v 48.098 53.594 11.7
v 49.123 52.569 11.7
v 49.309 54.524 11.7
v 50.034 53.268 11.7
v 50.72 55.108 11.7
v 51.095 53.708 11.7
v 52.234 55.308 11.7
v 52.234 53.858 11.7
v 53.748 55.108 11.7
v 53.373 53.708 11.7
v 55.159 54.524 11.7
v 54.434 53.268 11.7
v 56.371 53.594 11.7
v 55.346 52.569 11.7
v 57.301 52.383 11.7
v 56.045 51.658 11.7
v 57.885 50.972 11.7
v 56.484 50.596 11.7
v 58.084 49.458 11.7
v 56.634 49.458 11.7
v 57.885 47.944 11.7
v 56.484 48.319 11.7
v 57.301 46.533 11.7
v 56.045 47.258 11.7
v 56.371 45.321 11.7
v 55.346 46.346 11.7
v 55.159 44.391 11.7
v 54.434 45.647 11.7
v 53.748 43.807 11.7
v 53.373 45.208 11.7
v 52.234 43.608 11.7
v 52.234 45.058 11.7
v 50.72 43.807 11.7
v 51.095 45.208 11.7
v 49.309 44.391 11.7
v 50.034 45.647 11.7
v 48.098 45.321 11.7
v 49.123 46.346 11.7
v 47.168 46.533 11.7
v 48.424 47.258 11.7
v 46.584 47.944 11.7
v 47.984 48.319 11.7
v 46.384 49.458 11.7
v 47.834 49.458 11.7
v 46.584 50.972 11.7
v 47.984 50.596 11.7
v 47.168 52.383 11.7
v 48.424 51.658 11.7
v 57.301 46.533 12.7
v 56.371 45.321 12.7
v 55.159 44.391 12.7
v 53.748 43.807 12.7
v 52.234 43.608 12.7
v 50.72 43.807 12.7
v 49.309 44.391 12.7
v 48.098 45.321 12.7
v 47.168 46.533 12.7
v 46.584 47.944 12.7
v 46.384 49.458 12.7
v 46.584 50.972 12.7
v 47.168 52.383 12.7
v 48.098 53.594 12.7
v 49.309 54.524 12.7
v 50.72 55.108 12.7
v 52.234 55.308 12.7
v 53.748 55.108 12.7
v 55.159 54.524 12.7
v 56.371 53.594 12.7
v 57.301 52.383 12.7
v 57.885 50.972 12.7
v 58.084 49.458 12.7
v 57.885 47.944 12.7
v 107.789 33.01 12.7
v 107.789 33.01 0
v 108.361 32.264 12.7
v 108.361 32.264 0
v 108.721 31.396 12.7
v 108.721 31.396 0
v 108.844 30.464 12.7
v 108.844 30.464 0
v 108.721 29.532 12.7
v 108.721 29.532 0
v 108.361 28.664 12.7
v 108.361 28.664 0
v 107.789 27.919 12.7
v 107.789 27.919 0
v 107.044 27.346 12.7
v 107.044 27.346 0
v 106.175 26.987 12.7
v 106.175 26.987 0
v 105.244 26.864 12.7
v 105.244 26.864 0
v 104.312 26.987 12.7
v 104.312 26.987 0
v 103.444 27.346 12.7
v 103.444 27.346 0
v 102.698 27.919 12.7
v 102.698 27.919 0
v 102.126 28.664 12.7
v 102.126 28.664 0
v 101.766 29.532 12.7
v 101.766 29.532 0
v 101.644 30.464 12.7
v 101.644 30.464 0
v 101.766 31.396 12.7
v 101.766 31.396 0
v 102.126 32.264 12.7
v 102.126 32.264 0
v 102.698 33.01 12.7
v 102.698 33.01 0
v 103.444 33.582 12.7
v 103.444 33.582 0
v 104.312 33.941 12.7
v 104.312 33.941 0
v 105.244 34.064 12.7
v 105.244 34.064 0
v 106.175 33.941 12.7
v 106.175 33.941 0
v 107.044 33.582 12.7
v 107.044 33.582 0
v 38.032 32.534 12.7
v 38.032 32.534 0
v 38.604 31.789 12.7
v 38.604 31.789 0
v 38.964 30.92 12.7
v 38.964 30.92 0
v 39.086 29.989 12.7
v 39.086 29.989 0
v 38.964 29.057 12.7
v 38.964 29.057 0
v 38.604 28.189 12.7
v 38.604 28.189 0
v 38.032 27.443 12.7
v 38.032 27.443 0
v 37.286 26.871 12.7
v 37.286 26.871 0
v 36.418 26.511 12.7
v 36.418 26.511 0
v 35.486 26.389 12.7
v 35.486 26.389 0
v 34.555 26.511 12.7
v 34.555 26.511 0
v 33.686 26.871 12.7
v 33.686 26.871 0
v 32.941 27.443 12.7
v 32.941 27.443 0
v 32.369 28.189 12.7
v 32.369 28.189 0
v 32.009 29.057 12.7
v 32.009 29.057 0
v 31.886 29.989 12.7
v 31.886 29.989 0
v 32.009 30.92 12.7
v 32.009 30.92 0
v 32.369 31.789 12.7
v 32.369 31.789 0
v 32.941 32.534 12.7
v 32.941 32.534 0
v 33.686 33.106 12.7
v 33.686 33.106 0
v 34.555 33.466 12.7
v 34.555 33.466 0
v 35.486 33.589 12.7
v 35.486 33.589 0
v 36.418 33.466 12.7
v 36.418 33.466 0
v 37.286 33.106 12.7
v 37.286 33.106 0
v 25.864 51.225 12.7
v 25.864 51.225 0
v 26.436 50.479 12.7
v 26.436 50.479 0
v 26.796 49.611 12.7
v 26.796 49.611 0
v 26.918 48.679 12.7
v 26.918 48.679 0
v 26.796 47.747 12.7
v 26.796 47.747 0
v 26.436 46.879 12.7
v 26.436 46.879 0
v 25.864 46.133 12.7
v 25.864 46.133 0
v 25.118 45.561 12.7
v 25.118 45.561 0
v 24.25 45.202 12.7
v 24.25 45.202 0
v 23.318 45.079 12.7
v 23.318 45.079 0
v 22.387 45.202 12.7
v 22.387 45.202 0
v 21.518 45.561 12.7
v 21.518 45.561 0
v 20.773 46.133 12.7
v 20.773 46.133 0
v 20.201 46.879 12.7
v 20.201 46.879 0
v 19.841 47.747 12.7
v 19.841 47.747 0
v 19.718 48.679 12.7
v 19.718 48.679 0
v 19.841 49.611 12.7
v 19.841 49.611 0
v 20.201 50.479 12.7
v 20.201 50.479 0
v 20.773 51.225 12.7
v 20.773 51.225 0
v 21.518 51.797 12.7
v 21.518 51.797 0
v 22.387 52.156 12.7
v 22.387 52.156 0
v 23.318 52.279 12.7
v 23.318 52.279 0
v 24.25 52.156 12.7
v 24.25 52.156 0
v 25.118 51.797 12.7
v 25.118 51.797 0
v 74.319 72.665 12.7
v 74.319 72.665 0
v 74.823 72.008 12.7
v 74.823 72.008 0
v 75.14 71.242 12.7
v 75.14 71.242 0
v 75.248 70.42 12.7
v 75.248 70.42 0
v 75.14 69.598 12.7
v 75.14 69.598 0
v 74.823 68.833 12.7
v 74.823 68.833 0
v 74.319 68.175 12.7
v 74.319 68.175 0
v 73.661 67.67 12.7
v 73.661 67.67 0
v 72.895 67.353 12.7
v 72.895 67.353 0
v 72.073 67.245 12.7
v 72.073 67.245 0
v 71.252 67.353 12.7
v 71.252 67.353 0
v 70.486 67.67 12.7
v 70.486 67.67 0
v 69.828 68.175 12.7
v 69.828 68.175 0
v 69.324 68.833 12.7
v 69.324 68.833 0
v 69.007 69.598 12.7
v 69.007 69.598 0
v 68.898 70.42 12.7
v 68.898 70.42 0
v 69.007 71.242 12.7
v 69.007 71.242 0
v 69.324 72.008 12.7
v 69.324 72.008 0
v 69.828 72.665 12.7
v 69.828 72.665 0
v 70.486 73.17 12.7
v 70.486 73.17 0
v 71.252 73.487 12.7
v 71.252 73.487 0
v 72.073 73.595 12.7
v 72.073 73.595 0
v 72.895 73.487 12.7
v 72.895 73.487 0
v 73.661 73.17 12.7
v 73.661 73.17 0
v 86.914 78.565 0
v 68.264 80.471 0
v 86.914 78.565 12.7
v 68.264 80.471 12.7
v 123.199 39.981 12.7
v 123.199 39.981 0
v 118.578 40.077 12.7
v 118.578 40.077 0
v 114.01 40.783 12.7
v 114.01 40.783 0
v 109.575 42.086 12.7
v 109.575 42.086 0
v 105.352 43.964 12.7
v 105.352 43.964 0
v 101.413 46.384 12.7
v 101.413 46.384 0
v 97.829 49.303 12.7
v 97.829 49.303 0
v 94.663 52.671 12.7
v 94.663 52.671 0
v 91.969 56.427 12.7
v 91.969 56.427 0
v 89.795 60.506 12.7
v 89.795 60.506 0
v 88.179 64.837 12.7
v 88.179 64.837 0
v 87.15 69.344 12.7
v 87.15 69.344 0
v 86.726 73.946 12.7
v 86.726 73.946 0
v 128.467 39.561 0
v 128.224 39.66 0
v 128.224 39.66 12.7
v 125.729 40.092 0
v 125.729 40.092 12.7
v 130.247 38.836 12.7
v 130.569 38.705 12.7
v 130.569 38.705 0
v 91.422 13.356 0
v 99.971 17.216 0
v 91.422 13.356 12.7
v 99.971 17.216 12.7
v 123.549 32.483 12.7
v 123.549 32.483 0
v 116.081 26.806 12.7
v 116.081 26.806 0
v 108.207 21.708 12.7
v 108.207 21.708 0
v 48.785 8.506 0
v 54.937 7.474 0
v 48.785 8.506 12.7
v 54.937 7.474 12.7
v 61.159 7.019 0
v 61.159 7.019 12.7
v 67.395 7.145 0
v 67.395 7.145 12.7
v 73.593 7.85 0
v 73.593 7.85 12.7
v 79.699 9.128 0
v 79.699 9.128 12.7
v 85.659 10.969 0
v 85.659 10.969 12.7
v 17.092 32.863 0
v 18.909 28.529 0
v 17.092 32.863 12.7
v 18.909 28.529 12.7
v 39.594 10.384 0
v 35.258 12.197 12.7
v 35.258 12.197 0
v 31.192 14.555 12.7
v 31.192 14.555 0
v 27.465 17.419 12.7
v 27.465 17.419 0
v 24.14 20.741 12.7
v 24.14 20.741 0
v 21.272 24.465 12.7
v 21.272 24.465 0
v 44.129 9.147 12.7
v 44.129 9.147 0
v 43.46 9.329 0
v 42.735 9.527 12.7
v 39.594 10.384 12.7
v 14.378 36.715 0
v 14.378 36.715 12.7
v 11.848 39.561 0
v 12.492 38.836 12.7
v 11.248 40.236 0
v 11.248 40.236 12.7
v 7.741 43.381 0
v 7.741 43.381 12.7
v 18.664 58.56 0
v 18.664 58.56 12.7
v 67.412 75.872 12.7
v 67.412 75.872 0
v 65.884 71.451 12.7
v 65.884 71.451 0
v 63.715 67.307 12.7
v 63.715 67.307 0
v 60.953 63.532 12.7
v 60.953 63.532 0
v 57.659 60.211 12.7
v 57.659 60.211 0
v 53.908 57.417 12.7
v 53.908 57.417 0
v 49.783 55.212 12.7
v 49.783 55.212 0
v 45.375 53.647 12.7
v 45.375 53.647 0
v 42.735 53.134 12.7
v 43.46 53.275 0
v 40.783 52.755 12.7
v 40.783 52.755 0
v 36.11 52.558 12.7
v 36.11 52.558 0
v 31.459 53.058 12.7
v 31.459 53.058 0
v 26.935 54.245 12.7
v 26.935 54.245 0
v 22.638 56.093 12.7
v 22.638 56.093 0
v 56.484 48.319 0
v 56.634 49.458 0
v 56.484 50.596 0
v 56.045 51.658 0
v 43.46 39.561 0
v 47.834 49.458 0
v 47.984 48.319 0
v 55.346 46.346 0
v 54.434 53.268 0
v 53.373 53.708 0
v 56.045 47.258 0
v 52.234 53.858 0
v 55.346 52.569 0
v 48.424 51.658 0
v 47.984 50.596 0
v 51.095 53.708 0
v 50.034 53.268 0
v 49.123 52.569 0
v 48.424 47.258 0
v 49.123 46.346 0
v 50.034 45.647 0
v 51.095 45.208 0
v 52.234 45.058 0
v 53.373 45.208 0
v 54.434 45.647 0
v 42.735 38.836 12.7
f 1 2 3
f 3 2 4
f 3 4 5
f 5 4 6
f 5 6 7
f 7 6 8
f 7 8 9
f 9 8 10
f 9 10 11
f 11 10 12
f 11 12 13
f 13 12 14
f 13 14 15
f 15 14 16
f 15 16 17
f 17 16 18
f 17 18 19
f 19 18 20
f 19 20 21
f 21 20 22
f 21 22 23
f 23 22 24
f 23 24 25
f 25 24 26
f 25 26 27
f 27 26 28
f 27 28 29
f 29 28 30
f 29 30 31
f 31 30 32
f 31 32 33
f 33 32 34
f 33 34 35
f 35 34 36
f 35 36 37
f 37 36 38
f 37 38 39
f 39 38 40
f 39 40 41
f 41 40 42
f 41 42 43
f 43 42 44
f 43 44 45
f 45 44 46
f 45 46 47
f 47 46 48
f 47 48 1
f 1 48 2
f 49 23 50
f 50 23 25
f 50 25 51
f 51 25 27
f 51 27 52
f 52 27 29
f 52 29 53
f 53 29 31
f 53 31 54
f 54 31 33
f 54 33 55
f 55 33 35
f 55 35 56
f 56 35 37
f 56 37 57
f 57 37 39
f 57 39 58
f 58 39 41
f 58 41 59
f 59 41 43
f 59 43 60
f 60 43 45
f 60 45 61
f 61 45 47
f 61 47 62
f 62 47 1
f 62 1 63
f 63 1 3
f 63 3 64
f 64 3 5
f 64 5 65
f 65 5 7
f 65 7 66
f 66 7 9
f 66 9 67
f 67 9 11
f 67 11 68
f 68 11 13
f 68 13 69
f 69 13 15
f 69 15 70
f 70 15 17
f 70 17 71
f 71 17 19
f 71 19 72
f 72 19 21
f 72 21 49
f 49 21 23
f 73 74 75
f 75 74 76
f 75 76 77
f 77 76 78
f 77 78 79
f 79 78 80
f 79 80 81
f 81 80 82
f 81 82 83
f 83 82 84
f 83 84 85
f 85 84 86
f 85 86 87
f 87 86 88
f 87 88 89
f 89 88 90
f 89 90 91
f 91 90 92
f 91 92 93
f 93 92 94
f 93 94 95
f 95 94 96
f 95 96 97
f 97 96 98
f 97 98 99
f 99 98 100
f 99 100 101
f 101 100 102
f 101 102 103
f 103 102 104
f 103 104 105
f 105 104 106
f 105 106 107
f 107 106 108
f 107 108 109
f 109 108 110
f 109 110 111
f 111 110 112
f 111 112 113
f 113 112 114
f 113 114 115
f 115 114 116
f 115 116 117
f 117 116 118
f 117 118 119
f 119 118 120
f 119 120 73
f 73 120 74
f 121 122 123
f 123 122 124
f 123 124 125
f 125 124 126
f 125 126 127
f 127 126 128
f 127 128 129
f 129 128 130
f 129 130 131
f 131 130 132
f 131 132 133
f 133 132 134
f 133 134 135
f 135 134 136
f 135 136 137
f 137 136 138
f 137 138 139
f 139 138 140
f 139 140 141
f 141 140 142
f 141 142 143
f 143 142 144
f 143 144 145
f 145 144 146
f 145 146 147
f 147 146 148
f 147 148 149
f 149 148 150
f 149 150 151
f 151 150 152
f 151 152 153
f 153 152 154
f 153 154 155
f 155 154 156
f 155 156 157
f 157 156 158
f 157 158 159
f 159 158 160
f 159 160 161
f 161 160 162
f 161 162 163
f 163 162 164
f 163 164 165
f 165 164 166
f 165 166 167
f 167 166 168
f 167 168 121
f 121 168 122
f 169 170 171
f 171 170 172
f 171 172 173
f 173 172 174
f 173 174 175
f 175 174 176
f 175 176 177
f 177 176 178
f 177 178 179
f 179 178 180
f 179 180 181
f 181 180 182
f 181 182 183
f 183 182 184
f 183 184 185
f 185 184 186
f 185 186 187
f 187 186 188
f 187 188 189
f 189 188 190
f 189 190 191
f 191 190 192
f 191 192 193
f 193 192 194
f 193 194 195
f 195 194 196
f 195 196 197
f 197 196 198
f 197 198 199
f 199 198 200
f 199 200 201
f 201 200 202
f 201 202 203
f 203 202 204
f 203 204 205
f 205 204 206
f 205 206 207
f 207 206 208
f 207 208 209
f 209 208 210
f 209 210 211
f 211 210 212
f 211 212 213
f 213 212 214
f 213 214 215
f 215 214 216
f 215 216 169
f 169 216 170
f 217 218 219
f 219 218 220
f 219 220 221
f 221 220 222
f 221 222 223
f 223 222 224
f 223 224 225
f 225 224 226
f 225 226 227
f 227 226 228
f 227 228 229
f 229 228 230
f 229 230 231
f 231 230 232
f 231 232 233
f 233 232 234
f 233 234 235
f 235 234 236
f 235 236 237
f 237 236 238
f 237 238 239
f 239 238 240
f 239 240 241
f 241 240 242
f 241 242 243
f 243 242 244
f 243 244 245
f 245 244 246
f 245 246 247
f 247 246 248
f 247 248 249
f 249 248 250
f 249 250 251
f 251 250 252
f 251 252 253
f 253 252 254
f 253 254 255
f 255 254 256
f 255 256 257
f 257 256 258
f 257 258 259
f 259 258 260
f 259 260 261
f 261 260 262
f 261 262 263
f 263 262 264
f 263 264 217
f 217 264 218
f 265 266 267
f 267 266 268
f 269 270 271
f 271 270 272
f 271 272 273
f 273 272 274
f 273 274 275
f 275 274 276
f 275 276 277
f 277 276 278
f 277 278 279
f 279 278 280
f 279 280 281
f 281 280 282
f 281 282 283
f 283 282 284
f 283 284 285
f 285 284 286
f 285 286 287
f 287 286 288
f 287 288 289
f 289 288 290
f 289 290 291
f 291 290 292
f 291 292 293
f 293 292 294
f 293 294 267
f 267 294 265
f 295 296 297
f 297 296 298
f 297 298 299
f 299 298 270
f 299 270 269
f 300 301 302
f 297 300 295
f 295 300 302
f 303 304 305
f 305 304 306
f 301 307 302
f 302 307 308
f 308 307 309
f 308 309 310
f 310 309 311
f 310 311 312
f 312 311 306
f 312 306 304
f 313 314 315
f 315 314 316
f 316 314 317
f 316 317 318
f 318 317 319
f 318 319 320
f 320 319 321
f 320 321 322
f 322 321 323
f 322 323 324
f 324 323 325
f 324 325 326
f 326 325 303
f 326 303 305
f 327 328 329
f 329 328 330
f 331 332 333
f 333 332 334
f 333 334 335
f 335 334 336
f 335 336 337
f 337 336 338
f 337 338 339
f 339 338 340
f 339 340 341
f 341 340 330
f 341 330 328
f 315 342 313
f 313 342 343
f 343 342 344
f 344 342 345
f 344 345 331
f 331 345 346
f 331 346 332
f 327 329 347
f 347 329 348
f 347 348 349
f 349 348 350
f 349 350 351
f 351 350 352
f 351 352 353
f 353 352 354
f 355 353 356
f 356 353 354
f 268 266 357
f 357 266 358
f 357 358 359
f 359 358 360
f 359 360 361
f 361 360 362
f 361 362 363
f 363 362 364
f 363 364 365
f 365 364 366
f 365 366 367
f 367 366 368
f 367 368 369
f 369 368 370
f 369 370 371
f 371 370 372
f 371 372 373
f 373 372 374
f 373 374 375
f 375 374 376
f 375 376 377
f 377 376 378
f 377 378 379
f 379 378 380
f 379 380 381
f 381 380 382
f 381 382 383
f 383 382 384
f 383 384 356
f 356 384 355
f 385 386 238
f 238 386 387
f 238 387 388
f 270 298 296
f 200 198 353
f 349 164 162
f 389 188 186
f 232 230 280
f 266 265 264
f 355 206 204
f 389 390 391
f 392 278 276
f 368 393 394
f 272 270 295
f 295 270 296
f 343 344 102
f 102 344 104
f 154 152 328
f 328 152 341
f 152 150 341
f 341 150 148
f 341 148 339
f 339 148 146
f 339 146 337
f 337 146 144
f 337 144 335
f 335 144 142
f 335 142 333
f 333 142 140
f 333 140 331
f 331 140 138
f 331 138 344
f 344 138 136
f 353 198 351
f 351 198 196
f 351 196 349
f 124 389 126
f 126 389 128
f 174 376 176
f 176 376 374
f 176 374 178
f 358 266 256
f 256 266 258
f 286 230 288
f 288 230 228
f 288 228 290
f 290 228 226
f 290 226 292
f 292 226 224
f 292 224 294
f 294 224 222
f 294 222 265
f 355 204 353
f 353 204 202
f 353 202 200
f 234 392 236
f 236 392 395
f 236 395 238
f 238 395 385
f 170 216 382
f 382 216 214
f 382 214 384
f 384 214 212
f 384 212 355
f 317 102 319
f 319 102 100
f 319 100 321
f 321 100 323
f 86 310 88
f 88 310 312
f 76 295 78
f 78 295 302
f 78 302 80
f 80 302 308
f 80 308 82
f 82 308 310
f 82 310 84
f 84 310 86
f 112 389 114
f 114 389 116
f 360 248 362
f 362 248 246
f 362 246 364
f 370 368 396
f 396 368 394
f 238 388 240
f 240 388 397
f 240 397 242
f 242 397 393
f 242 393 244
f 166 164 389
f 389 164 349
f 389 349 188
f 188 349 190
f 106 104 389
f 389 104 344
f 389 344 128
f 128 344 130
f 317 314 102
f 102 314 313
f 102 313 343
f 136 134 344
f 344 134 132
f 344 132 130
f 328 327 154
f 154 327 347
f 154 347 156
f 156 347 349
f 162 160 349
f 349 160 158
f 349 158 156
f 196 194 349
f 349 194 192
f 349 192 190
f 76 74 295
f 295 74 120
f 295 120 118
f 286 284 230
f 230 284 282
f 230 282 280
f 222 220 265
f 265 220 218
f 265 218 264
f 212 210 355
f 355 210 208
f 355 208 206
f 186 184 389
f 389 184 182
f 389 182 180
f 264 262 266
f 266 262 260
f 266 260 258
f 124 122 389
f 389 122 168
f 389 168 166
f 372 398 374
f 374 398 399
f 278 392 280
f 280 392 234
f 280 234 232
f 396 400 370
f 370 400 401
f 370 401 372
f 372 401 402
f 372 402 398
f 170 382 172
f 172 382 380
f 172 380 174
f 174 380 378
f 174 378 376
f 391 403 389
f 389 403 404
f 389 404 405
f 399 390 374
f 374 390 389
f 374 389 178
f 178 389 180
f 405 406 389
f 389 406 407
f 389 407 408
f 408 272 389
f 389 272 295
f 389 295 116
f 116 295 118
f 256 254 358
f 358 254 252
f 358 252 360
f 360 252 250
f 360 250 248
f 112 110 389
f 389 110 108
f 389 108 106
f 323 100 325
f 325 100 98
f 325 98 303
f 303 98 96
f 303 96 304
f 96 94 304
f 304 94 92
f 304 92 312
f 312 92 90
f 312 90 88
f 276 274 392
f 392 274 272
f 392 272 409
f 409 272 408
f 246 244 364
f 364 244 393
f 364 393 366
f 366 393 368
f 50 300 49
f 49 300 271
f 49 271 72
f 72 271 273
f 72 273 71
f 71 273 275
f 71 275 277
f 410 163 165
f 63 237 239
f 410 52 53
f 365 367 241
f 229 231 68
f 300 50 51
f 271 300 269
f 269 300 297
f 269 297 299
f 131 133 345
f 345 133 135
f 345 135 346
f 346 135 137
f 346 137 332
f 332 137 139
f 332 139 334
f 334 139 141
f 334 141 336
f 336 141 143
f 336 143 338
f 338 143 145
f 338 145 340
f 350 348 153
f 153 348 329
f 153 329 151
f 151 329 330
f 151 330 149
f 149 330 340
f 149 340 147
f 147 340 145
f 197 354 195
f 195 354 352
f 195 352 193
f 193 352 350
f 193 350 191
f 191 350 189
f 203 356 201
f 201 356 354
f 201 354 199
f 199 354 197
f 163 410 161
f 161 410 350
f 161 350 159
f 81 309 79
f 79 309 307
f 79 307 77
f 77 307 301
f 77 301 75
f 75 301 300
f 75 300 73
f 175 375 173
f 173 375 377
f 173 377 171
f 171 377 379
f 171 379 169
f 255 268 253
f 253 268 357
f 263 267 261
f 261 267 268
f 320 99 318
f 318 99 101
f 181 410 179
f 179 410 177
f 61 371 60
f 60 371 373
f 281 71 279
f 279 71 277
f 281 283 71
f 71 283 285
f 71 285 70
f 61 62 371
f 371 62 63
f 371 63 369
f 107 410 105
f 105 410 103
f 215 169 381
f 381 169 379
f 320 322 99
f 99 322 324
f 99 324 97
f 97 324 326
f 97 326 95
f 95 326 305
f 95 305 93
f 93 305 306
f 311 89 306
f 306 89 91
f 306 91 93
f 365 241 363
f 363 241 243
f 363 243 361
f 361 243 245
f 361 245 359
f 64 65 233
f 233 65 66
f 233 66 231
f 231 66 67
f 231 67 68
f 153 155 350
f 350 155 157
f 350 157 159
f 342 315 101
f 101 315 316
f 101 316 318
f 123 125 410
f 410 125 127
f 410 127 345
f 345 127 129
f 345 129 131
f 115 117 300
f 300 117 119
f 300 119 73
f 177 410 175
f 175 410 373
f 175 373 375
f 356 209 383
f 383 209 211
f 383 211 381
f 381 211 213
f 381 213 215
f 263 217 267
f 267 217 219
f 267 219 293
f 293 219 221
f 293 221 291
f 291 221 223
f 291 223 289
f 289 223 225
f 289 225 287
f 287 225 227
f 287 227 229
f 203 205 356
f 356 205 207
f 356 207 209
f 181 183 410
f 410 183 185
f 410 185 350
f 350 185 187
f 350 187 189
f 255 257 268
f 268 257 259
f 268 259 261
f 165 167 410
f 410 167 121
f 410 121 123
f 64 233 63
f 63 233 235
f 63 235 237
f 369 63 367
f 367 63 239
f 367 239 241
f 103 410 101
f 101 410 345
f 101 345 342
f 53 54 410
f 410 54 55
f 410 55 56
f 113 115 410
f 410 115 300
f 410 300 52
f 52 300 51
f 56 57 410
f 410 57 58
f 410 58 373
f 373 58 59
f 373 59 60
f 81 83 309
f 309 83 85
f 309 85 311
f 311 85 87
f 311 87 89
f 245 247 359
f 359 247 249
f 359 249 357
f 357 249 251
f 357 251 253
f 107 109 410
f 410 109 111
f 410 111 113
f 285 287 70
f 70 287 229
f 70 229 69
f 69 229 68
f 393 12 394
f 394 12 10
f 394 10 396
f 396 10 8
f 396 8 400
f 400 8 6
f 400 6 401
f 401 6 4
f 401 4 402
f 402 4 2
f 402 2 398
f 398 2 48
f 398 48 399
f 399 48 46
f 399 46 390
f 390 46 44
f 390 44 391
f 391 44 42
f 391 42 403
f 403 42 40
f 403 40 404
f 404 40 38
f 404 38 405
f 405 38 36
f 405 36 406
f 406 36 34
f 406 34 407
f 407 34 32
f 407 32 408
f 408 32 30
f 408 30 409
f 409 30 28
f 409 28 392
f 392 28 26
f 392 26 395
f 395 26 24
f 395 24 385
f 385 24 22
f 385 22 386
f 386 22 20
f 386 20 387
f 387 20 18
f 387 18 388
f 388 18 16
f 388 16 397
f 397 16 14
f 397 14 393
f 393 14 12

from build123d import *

# Parameters (mm, degrees)
ESBO_O1_R                = 3.175
ESBO_O1_R_2              = 3.6
ESBO_O1_R_3              = 4.4
RESSALTO_EXTRUS_O1_DEPTH = 12.7
ESBO_O3_R                = 5.85
CORTE_EXTRUS_O1_DEPTH    = 1


with BuildPart() as part:
    # Esboço1 → Ressalto-extrusão1 (new body)
    with BuildSketch(Plane.XY):
        with BuildLine():
            Line((68.264029726, 80.471482556), (86.913718709, 78.564915838))
            ThreePointArc((86.913718709, 78.564915838), (96.190192778, 50.934582064), (123.199407881, 39.98055928))
            ThreePointArc((123.199407881, 39.98055928), (126.9879217, 39.943074462), (130.568554452, 38.704805036))
            ThreePointArc((130.568554452, 38.704805036), (112.191596118, 24.182863465), (91.421685961, 13.356496733))
            ThreePointArc((91.421685961, 13.356496733), (70.502377652, 7.424980082), (48.785297914, 8.506089469))
            ThreePointArc((48.785297914, 8.506089469), (29.282001901, 15.926871282), (17.091631159, 32.863264618))
            ThreePointArc((17.091631159, 32.863264618), (12.862793068, 38.519278229), (7.740980224, 43.381437705))
            Line((7.740980224, 43.381437705), (18.663600862, 58.560101484))
            ThreePointArc((18.663600862, 58.560101484), (49.782513053, 55.212261005), (68.264029726, 80.471482556))
        make_face()
        with Locations((72.07343938, 70.420125946)):
            Circle(ESBO_O1_R, mode=Mode.SUBTRACT)
        with Locations((23.31829005, 48.678964138)):
            Circle(ESBO_O1_R_2, mode=Mode.SUBTRACT)
        with Locations((35.486495683, 29.988548249)):
            Circle(ESBO_O1_R_2, mode=Mode.SUBTRACT)
        with Locations((105.243732184, 30.464144141)):
            Circle(ESBO_O1_R_2, mode=Mode.SUBTRACT)
        with Locations((52.234302046, 49.457669457)):
            Circle(ESBO_O1_R_3, mode=Mode.SUBTRACT)
    extrude(amount=RESSALTO_EXTRUS_O1_DEPTH)

    # Esboço3 → Corte-extrusão1 (cut)
    with BuildSketch(Plane.XY.offset(12.7)):
        with Locations((52.234302046, 49.457669457)):
            Circle(ESBO_O3_R)
    extrude(amount=-CORTE_EXTRUS_O1_DEPTH, mode=Mode.SUBTRACT)


solid = part.part
